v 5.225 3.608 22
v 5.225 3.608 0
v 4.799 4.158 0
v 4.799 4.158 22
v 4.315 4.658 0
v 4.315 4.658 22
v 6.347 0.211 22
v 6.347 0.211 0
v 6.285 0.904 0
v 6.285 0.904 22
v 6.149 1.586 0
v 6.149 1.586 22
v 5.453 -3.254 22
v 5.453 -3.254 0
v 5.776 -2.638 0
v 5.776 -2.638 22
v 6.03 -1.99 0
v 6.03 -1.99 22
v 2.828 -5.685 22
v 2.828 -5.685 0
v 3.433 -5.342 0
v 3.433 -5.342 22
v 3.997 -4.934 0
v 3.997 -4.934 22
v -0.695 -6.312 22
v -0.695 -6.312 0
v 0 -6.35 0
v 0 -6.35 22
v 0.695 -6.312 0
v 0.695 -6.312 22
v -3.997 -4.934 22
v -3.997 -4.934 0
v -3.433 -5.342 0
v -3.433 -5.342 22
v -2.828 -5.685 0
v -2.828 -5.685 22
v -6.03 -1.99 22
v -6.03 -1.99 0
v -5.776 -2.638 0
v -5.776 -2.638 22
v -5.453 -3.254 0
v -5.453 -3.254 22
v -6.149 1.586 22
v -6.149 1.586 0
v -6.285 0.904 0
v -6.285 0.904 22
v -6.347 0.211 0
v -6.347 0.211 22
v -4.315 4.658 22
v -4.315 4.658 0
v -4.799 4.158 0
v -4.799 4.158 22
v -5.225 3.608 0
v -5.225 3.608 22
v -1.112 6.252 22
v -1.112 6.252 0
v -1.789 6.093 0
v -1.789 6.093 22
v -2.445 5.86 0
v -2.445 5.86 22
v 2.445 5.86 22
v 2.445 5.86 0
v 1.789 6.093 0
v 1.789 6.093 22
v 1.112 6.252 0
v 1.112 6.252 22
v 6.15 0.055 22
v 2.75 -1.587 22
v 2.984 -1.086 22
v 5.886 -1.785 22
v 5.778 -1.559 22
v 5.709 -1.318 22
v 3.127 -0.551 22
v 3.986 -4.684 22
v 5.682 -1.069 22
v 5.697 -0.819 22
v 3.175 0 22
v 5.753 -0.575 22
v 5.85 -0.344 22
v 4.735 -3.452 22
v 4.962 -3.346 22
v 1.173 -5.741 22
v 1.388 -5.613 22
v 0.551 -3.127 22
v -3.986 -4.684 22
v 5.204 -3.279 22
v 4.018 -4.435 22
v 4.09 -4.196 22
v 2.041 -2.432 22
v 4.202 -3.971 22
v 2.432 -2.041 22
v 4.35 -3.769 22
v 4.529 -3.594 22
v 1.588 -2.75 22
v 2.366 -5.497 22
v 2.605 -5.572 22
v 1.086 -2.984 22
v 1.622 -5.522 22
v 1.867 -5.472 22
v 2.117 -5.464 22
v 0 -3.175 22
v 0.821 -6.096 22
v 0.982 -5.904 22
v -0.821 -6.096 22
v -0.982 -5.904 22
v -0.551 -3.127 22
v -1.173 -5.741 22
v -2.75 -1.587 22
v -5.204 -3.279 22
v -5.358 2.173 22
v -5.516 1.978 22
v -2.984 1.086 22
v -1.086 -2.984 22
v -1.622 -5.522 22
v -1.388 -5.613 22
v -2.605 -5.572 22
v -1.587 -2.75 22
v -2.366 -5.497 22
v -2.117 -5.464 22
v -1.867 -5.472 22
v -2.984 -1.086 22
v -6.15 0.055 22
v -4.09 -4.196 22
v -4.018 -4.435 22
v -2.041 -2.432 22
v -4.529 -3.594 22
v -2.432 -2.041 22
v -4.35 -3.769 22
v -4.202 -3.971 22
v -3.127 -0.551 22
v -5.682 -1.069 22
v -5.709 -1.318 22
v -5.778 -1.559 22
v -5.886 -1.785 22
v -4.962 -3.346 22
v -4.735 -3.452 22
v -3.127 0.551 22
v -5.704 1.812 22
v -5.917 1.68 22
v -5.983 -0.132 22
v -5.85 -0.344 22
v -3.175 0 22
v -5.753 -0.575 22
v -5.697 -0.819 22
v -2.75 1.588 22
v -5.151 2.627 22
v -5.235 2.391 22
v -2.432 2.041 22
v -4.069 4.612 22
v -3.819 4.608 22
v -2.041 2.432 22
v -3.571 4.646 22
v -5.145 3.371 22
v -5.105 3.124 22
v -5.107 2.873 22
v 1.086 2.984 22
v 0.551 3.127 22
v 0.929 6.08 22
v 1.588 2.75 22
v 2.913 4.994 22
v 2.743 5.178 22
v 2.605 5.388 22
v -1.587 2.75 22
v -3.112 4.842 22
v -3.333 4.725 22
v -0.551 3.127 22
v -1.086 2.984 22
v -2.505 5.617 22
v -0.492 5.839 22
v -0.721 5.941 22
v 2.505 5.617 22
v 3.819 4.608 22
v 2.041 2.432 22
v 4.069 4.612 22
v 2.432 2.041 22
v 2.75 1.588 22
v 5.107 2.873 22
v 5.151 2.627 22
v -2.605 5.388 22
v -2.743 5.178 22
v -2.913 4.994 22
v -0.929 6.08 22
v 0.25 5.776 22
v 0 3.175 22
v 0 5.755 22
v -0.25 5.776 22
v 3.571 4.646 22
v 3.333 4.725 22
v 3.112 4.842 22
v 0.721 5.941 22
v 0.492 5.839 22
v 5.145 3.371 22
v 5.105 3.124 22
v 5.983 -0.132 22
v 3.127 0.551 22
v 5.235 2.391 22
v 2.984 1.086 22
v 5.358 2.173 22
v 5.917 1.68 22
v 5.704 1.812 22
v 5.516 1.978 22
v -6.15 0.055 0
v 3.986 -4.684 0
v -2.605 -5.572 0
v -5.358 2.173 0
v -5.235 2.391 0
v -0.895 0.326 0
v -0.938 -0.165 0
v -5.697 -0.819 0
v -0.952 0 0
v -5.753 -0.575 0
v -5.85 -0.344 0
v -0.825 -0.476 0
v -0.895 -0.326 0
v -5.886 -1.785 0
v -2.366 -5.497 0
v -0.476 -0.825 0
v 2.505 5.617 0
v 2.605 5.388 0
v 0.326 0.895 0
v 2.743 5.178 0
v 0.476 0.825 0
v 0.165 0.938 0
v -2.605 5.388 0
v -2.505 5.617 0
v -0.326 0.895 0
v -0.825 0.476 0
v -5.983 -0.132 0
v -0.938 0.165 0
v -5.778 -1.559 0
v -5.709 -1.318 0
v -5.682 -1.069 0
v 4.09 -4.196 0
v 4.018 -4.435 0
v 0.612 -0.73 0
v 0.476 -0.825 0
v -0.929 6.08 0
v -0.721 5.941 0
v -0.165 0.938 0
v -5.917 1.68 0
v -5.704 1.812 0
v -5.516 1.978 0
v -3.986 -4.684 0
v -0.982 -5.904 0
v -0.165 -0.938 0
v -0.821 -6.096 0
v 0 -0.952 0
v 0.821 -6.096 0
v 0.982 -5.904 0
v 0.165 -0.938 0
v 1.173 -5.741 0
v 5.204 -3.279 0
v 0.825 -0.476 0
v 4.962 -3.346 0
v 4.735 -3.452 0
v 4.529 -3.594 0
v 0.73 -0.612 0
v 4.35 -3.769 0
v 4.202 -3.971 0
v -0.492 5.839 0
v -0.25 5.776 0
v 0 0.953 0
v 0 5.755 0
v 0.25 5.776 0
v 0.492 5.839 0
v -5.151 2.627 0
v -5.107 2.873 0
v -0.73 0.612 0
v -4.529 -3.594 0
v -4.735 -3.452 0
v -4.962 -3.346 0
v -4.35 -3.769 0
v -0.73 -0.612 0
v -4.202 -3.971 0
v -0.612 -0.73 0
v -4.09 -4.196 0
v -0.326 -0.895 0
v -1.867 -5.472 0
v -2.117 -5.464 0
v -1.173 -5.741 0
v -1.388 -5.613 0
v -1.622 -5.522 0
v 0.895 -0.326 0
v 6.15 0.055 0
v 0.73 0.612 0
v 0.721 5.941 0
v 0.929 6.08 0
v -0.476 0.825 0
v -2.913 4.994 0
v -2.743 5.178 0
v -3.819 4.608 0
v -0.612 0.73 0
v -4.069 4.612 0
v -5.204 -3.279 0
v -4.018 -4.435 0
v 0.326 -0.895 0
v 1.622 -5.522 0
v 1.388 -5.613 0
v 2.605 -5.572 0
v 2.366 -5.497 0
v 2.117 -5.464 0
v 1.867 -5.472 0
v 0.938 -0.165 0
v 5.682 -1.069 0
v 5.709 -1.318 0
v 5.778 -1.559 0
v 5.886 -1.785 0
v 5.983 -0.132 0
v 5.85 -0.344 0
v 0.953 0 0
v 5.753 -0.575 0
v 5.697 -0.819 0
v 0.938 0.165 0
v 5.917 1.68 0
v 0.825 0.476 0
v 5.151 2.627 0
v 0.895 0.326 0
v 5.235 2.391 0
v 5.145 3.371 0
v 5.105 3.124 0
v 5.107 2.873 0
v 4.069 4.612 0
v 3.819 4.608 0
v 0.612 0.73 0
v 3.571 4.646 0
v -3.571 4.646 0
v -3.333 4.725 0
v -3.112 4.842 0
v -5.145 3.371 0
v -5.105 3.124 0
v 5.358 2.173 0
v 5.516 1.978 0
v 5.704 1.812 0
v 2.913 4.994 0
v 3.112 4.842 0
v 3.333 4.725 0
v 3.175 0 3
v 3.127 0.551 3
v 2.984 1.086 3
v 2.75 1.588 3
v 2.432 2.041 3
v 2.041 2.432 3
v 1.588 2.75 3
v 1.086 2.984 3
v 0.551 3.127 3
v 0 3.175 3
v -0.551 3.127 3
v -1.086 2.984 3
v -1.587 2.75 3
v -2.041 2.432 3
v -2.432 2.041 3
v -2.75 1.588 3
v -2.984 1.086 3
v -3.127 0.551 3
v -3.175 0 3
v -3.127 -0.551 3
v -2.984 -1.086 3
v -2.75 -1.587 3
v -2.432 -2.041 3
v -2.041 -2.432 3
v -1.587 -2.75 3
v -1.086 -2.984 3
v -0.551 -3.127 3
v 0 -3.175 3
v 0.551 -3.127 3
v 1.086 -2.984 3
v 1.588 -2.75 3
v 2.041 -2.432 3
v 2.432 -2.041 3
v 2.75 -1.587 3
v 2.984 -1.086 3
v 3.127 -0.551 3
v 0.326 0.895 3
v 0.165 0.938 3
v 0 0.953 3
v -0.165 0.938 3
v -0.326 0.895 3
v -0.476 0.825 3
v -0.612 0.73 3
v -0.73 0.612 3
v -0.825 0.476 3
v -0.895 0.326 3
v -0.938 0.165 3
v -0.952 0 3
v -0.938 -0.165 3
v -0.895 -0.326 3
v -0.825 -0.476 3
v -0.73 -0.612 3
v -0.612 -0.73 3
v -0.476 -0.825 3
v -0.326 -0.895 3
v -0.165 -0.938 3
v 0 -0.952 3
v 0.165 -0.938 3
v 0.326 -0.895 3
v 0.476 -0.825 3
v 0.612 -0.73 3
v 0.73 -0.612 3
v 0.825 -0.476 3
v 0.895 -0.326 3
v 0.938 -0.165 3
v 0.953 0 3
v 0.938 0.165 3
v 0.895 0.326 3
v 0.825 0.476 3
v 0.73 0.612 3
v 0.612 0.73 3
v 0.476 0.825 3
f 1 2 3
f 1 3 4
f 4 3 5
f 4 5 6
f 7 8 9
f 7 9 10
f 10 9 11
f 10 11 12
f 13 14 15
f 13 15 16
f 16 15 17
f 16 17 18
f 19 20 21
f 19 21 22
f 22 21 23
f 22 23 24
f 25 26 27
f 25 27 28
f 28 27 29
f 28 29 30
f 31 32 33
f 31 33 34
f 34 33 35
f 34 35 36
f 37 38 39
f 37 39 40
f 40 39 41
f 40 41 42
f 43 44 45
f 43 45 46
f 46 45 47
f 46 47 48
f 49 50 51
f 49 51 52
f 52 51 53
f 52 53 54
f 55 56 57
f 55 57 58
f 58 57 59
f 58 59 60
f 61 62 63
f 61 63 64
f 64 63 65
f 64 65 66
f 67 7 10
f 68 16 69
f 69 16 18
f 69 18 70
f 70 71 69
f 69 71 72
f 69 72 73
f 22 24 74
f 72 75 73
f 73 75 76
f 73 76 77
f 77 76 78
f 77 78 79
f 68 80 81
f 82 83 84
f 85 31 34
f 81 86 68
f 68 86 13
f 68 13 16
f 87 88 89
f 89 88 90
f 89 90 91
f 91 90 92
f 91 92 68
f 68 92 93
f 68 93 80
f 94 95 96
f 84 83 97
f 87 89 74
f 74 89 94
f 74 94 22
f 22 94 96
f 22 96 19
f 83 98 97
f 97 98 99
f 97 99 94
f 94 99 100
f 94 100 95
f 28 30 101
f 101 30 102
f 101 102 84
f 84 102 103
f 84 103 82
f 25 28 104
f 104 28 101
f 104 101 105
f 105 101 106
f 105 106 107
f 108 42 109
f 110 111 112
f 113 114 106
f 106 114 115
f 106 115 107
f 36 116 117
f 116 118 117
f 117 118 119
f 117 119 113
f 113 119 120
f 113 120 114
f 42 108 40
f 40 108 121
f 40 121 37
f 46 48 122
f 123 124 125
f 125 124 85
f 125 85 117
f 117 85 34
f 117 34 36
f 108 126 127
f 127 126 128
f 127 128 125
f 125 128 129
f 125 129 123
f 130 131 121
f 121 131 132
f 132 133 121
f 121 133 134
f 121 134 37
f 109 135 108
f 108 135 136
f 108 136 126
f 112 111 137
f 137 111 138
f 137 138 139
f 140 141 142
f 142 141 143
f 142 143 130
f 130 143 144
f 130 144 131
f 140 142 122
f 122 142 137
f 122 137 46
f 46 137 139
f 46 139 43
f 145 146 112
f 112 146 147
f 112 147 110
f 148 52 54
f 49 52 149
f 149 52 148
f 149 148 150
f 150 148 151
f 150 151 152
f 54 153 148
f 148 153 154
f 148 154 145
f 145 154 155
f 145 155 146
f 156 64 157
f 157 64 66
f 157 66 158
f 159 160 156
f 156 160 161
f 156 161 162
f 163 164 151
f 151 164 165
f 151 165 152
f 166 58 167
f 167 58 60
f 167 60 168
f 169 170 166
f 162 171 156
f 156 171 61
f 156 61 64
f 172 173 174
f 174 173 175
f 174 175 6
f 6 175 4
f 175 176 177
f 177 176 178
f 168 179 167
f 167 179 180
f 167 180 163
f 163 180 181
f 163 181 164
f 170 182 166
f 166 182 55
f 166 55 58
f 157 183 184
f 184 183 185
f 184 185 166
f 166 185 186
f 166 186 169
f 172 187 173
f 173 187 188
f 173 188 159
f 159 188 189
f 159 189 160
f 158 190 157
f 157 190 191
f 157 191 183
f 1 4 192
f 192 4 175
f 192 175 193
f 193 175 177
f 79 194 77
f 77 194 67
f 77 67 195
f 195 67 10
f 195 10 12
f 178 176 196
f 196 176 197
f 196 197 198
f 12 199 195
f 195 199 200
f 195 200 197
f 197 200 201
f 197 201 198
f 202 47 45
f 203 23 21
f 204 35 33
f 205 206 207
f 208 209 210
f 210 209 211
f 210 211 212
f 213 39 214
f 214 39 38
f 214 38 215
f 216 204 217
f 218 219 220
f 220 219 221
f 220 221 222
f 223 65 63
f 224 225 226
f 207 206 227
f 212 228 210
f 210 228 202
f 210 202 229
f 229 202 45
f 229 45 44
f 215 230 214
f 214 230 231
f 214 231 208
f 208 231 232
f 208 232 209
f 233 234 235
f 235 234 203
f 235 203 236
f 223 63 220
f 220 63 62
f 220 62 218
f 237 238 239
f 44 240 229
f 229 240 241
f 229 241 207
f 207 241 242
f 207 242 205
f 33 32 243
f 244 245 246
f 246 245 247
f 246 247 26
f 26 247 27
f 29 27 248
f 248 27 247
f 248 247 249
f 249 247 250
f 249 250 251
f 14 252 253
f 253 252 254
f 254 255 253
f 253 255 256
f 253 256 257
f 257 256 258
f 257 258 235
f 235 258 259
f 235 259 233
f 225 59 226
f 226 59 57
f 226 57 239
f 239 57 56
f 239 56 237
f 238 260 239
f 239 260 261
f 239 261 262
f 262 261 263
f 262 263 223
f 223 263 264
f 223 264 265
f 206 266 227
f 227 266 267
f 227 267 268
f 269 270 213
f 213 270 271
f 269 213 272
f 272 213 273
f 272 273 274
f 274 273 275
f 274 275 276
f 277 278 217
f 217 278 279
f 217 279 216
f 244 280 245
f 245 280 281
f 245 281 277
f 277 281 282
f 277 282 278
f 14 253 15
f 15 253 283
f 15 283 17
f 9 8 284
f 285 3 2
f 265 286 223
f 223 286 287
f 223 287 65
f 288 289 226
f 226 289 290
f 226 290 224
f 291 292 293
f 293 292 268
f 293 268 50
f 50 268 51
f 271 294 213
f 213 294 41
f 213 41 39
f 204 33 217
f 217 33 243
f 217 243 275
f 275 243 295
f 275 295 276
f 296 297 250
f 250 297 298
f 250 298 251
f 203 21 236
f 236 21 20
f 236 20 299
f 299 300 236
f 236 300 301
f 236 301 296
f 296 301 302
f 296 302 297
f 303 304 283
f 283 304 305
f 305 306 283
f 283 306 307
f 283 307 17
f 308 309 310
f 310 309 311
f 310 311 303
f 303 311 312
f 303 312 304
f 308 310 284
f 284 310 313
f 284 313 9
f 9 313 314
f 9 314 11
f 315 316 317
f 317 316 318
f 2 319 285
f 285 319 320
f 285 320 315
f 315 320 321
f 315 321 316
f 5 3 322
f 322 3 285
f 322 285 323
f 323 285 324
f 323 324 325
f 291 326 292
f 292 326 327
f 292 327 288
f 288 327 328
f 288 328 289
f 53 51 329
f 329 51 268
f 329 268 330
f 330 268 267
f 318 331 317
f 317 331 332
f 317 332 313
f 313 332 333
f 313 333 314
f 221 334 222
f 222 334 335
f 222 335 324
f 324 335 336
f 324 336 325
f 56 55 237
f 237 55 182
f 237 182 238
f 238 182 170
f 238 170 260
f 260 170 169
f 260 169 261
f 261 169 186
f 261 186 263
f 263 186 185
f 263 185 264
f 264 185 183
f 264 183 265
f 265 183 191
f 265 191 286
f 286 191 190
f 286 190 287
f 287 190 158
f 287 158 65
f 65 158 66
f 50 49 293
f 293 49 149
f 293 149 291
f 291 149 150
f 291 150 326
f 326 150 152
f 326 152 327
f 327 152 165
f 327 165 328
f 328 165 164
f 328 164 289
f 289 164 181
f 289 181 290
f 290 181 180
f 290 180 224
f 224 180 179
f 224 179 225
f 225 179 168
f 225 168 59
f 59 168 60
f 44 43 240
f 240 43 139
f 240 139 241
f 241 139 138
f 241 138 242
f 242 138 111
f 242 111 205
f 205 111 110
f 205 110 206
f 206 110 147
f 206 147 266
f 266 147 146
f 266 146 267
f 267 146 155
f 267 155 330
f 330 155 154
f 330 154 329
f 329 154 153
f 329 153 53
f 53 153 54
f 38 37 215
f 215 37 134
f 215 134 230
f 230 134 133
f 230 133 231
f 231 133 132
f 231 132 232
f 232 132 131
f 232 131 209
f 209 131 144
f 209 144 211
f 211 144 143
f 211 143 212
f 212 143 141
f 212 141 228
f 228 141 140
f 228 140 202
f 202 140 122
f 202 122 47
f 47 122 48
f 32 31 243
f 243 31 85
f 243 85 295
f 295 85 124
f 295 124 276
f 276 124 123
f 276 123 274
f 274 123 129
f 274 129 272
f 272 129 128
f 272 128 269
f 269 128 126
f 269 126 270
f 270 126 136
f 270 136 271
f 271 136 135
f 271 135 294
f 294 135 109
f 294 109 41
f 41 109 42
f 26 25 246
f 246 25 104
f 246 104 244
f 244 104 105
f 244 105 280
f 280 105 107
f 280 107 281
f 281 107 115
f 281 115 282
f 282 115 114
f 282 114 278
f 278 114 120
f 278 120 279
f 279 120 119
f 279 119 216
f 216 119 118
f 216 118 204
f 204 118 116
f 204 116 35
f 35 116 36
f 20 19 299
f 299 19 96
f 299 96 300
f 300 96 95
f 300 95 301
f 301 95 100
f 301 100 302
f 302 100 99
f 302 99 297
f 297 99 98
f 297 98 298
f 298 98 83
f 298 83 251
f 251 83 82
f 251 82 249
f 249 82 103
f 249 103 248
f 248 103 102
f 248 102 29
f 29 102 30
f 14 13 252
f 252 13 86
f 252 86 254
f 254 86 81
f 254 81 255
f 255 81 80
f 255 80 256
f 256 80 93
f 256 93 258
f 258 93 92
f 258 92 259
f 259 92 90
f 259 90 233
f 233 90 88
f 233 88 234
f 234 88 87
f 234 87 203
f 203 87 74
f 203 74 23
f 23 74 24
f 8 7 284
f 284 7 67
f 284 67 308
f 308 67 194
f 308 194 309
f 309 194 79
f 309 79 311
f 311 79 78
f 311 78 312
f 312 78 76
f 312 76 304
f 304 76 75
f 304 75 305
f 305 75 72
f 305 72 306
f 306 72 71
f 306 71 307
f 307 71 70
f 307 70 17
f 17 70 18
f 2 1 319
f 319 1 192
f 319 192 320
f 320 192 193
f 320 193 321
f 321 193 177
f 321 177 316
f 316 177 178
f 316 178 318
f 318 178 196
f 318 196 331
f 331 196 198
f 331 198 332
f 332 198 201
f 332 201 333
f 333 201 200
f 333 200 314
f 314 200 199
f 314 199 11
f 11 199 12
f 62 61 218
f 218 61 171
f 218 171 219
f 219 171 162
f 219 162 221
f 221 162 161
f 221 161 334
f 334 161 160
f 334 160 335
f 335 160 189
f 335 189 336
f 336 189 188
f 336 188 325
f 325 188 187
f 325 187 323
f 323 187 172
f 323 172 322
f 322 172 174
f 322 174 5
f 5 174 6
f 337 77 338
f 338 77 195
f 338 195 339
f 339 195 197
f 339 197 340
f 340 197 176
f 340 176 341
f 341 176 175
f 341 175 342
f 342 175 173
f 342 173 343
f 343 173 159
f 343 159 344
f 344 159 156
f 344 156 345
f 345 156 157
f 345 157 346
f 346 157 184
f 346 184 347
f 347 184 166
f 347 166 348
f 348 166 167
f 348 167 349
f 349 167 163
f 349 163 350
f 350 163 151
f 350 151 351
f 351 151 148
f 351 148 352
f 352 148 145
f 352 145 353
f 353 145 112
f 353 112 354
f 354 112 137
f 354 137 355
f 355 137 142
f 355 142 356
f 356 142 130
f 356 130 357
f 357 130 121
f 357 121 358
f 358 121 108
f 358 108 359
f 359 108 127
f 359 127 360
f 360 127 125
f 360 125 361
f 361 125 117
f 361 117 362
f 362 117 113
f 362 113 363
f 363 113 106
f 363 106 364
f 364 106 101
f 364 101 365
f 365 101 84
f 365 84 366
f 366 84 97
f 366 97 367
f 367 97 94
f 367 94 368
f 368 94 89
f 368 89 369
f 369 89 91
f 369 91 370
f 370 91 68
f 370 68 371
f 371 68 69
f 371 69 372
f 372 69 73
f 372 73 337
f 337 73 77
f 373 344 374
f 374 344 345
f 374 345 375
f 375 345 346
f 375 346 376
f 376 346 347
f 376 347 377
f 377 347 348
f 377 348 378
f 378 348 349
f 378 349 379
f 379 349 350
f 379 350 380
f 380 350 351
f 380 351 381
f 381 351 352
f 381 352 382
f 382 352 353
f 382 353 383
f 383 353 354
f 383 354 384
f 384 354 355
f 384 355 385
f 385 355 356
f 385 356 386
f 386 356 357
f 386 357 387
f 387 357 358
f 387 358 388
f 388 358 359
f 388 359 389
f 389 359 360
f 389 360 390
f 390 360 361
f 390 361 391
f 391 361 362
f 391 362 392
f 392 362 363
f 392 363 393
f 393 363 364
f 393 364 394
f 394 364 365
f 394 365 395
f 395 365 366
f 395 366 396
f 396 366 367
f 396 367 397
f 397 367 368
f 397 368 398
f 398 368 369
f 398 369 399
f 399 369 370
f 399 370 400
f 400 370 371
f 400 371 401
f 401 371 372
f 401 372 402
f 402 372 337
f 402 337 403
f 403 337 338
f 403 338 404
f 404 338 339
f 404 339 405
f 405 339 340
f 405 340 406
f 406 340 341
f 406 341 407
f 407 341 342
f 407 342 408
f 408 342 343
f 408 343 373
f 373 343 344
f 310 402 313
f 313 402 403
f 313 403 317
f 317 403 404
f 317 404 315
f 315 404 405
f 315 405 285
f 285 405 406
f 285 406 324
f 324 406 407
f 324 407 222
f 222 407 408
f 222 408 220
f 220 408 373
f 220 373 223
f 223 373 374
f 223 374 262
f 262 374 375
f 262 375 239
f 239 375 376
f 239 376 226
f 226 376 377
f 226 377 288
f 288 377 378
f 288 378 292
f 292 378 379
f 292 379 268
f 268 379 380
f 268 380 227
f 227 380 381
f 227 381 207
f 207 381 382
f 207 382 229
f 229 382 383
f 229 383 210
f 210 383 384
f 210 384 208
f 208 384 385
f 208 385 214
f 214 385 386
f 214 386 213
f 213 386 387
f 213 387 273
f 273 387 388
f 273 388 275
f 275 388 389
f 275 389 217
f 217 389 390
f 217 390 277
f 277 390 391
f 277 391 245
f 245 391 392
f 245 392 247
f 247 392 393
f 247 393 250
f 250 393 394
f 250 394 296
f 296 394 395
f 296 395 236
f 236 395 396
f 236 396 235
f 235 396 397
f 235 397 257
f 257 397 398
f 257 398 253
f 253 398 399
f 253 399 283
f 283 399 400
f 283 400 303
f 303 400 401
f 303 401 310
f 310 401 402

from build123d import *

# Parameters (mm, degrees)
SKETCH1_R           = 6.35
BOSS_EXTRUDE1_DEPTH = 22
CUT_EXTRUDE1_DEPTH  = 23
CIRPATTERN1_COUNT   = 11
SKETCH3_R           = 3.175
CUT_EXTRUDE2_DEPTH  = 19
SKETCH4_R           = 0.9525
CUT_EXTRUDE3_DEPTH  = 4


with BuildPart() as part:
    # Sketch1 → Boss-Extrude1 (new body)
    with BuildSketch(Plane.XY):
        Circle(SKETCH1_R)
    extrude(amount=BOSS_EXTRUDE1_DEPTH)

    # Sketch2 → Cut-Extrude1 (cut, through all)
    with BuildSketch(Plane.XY.offset(22)):
        with BuildLine():
            ThreePointArc((-1.111662599, 6.251936201), (0, 5.75547169), (1.111662599, 6.251936201))
            ThreePointArc((1.111662599, 6.251936201), (0, 6.35), (-1.111662599, 6.251936201))
        make_face()
    cut_extrude1 = extrude(amount=-CUT_EXTRUDE1_DEPTH, mode=Mode.SUBTRACT)

    # CirPattern1: Cut-Extrude1 ×11 about axis
    cirpattern1_axis = Axis((0, 0, 0), (0, 0, 1))
    for i in range(1, CIRPATTERN1_COUNT):
        add(cut_extrude1.rotate(cirpattern1_axis, i * 360 / CIRPATTERN1_COUNT), mode=Mode.SUBTRACT)

    # Sketch3 → Cut-Extrude2 (cut)
    with BuildSketch(Plane.XY.offset(22)):
        Circle(SKETCH3_R)
    extrude(amount=-CUT_EXTRUDE2_DEPTH, mode=Mode.SUBTRACT)

    # Sketch4 → Cut-Extrude3 (cut, through all)
    with BuildSketch(Plane.XY.offset(3)):
        Circle(SKETCH4_R)
    extrude(amount=-CUT_EXTRUDE3_DEPTH, mode=Mode.SUBTRACT)


solid = part.part
